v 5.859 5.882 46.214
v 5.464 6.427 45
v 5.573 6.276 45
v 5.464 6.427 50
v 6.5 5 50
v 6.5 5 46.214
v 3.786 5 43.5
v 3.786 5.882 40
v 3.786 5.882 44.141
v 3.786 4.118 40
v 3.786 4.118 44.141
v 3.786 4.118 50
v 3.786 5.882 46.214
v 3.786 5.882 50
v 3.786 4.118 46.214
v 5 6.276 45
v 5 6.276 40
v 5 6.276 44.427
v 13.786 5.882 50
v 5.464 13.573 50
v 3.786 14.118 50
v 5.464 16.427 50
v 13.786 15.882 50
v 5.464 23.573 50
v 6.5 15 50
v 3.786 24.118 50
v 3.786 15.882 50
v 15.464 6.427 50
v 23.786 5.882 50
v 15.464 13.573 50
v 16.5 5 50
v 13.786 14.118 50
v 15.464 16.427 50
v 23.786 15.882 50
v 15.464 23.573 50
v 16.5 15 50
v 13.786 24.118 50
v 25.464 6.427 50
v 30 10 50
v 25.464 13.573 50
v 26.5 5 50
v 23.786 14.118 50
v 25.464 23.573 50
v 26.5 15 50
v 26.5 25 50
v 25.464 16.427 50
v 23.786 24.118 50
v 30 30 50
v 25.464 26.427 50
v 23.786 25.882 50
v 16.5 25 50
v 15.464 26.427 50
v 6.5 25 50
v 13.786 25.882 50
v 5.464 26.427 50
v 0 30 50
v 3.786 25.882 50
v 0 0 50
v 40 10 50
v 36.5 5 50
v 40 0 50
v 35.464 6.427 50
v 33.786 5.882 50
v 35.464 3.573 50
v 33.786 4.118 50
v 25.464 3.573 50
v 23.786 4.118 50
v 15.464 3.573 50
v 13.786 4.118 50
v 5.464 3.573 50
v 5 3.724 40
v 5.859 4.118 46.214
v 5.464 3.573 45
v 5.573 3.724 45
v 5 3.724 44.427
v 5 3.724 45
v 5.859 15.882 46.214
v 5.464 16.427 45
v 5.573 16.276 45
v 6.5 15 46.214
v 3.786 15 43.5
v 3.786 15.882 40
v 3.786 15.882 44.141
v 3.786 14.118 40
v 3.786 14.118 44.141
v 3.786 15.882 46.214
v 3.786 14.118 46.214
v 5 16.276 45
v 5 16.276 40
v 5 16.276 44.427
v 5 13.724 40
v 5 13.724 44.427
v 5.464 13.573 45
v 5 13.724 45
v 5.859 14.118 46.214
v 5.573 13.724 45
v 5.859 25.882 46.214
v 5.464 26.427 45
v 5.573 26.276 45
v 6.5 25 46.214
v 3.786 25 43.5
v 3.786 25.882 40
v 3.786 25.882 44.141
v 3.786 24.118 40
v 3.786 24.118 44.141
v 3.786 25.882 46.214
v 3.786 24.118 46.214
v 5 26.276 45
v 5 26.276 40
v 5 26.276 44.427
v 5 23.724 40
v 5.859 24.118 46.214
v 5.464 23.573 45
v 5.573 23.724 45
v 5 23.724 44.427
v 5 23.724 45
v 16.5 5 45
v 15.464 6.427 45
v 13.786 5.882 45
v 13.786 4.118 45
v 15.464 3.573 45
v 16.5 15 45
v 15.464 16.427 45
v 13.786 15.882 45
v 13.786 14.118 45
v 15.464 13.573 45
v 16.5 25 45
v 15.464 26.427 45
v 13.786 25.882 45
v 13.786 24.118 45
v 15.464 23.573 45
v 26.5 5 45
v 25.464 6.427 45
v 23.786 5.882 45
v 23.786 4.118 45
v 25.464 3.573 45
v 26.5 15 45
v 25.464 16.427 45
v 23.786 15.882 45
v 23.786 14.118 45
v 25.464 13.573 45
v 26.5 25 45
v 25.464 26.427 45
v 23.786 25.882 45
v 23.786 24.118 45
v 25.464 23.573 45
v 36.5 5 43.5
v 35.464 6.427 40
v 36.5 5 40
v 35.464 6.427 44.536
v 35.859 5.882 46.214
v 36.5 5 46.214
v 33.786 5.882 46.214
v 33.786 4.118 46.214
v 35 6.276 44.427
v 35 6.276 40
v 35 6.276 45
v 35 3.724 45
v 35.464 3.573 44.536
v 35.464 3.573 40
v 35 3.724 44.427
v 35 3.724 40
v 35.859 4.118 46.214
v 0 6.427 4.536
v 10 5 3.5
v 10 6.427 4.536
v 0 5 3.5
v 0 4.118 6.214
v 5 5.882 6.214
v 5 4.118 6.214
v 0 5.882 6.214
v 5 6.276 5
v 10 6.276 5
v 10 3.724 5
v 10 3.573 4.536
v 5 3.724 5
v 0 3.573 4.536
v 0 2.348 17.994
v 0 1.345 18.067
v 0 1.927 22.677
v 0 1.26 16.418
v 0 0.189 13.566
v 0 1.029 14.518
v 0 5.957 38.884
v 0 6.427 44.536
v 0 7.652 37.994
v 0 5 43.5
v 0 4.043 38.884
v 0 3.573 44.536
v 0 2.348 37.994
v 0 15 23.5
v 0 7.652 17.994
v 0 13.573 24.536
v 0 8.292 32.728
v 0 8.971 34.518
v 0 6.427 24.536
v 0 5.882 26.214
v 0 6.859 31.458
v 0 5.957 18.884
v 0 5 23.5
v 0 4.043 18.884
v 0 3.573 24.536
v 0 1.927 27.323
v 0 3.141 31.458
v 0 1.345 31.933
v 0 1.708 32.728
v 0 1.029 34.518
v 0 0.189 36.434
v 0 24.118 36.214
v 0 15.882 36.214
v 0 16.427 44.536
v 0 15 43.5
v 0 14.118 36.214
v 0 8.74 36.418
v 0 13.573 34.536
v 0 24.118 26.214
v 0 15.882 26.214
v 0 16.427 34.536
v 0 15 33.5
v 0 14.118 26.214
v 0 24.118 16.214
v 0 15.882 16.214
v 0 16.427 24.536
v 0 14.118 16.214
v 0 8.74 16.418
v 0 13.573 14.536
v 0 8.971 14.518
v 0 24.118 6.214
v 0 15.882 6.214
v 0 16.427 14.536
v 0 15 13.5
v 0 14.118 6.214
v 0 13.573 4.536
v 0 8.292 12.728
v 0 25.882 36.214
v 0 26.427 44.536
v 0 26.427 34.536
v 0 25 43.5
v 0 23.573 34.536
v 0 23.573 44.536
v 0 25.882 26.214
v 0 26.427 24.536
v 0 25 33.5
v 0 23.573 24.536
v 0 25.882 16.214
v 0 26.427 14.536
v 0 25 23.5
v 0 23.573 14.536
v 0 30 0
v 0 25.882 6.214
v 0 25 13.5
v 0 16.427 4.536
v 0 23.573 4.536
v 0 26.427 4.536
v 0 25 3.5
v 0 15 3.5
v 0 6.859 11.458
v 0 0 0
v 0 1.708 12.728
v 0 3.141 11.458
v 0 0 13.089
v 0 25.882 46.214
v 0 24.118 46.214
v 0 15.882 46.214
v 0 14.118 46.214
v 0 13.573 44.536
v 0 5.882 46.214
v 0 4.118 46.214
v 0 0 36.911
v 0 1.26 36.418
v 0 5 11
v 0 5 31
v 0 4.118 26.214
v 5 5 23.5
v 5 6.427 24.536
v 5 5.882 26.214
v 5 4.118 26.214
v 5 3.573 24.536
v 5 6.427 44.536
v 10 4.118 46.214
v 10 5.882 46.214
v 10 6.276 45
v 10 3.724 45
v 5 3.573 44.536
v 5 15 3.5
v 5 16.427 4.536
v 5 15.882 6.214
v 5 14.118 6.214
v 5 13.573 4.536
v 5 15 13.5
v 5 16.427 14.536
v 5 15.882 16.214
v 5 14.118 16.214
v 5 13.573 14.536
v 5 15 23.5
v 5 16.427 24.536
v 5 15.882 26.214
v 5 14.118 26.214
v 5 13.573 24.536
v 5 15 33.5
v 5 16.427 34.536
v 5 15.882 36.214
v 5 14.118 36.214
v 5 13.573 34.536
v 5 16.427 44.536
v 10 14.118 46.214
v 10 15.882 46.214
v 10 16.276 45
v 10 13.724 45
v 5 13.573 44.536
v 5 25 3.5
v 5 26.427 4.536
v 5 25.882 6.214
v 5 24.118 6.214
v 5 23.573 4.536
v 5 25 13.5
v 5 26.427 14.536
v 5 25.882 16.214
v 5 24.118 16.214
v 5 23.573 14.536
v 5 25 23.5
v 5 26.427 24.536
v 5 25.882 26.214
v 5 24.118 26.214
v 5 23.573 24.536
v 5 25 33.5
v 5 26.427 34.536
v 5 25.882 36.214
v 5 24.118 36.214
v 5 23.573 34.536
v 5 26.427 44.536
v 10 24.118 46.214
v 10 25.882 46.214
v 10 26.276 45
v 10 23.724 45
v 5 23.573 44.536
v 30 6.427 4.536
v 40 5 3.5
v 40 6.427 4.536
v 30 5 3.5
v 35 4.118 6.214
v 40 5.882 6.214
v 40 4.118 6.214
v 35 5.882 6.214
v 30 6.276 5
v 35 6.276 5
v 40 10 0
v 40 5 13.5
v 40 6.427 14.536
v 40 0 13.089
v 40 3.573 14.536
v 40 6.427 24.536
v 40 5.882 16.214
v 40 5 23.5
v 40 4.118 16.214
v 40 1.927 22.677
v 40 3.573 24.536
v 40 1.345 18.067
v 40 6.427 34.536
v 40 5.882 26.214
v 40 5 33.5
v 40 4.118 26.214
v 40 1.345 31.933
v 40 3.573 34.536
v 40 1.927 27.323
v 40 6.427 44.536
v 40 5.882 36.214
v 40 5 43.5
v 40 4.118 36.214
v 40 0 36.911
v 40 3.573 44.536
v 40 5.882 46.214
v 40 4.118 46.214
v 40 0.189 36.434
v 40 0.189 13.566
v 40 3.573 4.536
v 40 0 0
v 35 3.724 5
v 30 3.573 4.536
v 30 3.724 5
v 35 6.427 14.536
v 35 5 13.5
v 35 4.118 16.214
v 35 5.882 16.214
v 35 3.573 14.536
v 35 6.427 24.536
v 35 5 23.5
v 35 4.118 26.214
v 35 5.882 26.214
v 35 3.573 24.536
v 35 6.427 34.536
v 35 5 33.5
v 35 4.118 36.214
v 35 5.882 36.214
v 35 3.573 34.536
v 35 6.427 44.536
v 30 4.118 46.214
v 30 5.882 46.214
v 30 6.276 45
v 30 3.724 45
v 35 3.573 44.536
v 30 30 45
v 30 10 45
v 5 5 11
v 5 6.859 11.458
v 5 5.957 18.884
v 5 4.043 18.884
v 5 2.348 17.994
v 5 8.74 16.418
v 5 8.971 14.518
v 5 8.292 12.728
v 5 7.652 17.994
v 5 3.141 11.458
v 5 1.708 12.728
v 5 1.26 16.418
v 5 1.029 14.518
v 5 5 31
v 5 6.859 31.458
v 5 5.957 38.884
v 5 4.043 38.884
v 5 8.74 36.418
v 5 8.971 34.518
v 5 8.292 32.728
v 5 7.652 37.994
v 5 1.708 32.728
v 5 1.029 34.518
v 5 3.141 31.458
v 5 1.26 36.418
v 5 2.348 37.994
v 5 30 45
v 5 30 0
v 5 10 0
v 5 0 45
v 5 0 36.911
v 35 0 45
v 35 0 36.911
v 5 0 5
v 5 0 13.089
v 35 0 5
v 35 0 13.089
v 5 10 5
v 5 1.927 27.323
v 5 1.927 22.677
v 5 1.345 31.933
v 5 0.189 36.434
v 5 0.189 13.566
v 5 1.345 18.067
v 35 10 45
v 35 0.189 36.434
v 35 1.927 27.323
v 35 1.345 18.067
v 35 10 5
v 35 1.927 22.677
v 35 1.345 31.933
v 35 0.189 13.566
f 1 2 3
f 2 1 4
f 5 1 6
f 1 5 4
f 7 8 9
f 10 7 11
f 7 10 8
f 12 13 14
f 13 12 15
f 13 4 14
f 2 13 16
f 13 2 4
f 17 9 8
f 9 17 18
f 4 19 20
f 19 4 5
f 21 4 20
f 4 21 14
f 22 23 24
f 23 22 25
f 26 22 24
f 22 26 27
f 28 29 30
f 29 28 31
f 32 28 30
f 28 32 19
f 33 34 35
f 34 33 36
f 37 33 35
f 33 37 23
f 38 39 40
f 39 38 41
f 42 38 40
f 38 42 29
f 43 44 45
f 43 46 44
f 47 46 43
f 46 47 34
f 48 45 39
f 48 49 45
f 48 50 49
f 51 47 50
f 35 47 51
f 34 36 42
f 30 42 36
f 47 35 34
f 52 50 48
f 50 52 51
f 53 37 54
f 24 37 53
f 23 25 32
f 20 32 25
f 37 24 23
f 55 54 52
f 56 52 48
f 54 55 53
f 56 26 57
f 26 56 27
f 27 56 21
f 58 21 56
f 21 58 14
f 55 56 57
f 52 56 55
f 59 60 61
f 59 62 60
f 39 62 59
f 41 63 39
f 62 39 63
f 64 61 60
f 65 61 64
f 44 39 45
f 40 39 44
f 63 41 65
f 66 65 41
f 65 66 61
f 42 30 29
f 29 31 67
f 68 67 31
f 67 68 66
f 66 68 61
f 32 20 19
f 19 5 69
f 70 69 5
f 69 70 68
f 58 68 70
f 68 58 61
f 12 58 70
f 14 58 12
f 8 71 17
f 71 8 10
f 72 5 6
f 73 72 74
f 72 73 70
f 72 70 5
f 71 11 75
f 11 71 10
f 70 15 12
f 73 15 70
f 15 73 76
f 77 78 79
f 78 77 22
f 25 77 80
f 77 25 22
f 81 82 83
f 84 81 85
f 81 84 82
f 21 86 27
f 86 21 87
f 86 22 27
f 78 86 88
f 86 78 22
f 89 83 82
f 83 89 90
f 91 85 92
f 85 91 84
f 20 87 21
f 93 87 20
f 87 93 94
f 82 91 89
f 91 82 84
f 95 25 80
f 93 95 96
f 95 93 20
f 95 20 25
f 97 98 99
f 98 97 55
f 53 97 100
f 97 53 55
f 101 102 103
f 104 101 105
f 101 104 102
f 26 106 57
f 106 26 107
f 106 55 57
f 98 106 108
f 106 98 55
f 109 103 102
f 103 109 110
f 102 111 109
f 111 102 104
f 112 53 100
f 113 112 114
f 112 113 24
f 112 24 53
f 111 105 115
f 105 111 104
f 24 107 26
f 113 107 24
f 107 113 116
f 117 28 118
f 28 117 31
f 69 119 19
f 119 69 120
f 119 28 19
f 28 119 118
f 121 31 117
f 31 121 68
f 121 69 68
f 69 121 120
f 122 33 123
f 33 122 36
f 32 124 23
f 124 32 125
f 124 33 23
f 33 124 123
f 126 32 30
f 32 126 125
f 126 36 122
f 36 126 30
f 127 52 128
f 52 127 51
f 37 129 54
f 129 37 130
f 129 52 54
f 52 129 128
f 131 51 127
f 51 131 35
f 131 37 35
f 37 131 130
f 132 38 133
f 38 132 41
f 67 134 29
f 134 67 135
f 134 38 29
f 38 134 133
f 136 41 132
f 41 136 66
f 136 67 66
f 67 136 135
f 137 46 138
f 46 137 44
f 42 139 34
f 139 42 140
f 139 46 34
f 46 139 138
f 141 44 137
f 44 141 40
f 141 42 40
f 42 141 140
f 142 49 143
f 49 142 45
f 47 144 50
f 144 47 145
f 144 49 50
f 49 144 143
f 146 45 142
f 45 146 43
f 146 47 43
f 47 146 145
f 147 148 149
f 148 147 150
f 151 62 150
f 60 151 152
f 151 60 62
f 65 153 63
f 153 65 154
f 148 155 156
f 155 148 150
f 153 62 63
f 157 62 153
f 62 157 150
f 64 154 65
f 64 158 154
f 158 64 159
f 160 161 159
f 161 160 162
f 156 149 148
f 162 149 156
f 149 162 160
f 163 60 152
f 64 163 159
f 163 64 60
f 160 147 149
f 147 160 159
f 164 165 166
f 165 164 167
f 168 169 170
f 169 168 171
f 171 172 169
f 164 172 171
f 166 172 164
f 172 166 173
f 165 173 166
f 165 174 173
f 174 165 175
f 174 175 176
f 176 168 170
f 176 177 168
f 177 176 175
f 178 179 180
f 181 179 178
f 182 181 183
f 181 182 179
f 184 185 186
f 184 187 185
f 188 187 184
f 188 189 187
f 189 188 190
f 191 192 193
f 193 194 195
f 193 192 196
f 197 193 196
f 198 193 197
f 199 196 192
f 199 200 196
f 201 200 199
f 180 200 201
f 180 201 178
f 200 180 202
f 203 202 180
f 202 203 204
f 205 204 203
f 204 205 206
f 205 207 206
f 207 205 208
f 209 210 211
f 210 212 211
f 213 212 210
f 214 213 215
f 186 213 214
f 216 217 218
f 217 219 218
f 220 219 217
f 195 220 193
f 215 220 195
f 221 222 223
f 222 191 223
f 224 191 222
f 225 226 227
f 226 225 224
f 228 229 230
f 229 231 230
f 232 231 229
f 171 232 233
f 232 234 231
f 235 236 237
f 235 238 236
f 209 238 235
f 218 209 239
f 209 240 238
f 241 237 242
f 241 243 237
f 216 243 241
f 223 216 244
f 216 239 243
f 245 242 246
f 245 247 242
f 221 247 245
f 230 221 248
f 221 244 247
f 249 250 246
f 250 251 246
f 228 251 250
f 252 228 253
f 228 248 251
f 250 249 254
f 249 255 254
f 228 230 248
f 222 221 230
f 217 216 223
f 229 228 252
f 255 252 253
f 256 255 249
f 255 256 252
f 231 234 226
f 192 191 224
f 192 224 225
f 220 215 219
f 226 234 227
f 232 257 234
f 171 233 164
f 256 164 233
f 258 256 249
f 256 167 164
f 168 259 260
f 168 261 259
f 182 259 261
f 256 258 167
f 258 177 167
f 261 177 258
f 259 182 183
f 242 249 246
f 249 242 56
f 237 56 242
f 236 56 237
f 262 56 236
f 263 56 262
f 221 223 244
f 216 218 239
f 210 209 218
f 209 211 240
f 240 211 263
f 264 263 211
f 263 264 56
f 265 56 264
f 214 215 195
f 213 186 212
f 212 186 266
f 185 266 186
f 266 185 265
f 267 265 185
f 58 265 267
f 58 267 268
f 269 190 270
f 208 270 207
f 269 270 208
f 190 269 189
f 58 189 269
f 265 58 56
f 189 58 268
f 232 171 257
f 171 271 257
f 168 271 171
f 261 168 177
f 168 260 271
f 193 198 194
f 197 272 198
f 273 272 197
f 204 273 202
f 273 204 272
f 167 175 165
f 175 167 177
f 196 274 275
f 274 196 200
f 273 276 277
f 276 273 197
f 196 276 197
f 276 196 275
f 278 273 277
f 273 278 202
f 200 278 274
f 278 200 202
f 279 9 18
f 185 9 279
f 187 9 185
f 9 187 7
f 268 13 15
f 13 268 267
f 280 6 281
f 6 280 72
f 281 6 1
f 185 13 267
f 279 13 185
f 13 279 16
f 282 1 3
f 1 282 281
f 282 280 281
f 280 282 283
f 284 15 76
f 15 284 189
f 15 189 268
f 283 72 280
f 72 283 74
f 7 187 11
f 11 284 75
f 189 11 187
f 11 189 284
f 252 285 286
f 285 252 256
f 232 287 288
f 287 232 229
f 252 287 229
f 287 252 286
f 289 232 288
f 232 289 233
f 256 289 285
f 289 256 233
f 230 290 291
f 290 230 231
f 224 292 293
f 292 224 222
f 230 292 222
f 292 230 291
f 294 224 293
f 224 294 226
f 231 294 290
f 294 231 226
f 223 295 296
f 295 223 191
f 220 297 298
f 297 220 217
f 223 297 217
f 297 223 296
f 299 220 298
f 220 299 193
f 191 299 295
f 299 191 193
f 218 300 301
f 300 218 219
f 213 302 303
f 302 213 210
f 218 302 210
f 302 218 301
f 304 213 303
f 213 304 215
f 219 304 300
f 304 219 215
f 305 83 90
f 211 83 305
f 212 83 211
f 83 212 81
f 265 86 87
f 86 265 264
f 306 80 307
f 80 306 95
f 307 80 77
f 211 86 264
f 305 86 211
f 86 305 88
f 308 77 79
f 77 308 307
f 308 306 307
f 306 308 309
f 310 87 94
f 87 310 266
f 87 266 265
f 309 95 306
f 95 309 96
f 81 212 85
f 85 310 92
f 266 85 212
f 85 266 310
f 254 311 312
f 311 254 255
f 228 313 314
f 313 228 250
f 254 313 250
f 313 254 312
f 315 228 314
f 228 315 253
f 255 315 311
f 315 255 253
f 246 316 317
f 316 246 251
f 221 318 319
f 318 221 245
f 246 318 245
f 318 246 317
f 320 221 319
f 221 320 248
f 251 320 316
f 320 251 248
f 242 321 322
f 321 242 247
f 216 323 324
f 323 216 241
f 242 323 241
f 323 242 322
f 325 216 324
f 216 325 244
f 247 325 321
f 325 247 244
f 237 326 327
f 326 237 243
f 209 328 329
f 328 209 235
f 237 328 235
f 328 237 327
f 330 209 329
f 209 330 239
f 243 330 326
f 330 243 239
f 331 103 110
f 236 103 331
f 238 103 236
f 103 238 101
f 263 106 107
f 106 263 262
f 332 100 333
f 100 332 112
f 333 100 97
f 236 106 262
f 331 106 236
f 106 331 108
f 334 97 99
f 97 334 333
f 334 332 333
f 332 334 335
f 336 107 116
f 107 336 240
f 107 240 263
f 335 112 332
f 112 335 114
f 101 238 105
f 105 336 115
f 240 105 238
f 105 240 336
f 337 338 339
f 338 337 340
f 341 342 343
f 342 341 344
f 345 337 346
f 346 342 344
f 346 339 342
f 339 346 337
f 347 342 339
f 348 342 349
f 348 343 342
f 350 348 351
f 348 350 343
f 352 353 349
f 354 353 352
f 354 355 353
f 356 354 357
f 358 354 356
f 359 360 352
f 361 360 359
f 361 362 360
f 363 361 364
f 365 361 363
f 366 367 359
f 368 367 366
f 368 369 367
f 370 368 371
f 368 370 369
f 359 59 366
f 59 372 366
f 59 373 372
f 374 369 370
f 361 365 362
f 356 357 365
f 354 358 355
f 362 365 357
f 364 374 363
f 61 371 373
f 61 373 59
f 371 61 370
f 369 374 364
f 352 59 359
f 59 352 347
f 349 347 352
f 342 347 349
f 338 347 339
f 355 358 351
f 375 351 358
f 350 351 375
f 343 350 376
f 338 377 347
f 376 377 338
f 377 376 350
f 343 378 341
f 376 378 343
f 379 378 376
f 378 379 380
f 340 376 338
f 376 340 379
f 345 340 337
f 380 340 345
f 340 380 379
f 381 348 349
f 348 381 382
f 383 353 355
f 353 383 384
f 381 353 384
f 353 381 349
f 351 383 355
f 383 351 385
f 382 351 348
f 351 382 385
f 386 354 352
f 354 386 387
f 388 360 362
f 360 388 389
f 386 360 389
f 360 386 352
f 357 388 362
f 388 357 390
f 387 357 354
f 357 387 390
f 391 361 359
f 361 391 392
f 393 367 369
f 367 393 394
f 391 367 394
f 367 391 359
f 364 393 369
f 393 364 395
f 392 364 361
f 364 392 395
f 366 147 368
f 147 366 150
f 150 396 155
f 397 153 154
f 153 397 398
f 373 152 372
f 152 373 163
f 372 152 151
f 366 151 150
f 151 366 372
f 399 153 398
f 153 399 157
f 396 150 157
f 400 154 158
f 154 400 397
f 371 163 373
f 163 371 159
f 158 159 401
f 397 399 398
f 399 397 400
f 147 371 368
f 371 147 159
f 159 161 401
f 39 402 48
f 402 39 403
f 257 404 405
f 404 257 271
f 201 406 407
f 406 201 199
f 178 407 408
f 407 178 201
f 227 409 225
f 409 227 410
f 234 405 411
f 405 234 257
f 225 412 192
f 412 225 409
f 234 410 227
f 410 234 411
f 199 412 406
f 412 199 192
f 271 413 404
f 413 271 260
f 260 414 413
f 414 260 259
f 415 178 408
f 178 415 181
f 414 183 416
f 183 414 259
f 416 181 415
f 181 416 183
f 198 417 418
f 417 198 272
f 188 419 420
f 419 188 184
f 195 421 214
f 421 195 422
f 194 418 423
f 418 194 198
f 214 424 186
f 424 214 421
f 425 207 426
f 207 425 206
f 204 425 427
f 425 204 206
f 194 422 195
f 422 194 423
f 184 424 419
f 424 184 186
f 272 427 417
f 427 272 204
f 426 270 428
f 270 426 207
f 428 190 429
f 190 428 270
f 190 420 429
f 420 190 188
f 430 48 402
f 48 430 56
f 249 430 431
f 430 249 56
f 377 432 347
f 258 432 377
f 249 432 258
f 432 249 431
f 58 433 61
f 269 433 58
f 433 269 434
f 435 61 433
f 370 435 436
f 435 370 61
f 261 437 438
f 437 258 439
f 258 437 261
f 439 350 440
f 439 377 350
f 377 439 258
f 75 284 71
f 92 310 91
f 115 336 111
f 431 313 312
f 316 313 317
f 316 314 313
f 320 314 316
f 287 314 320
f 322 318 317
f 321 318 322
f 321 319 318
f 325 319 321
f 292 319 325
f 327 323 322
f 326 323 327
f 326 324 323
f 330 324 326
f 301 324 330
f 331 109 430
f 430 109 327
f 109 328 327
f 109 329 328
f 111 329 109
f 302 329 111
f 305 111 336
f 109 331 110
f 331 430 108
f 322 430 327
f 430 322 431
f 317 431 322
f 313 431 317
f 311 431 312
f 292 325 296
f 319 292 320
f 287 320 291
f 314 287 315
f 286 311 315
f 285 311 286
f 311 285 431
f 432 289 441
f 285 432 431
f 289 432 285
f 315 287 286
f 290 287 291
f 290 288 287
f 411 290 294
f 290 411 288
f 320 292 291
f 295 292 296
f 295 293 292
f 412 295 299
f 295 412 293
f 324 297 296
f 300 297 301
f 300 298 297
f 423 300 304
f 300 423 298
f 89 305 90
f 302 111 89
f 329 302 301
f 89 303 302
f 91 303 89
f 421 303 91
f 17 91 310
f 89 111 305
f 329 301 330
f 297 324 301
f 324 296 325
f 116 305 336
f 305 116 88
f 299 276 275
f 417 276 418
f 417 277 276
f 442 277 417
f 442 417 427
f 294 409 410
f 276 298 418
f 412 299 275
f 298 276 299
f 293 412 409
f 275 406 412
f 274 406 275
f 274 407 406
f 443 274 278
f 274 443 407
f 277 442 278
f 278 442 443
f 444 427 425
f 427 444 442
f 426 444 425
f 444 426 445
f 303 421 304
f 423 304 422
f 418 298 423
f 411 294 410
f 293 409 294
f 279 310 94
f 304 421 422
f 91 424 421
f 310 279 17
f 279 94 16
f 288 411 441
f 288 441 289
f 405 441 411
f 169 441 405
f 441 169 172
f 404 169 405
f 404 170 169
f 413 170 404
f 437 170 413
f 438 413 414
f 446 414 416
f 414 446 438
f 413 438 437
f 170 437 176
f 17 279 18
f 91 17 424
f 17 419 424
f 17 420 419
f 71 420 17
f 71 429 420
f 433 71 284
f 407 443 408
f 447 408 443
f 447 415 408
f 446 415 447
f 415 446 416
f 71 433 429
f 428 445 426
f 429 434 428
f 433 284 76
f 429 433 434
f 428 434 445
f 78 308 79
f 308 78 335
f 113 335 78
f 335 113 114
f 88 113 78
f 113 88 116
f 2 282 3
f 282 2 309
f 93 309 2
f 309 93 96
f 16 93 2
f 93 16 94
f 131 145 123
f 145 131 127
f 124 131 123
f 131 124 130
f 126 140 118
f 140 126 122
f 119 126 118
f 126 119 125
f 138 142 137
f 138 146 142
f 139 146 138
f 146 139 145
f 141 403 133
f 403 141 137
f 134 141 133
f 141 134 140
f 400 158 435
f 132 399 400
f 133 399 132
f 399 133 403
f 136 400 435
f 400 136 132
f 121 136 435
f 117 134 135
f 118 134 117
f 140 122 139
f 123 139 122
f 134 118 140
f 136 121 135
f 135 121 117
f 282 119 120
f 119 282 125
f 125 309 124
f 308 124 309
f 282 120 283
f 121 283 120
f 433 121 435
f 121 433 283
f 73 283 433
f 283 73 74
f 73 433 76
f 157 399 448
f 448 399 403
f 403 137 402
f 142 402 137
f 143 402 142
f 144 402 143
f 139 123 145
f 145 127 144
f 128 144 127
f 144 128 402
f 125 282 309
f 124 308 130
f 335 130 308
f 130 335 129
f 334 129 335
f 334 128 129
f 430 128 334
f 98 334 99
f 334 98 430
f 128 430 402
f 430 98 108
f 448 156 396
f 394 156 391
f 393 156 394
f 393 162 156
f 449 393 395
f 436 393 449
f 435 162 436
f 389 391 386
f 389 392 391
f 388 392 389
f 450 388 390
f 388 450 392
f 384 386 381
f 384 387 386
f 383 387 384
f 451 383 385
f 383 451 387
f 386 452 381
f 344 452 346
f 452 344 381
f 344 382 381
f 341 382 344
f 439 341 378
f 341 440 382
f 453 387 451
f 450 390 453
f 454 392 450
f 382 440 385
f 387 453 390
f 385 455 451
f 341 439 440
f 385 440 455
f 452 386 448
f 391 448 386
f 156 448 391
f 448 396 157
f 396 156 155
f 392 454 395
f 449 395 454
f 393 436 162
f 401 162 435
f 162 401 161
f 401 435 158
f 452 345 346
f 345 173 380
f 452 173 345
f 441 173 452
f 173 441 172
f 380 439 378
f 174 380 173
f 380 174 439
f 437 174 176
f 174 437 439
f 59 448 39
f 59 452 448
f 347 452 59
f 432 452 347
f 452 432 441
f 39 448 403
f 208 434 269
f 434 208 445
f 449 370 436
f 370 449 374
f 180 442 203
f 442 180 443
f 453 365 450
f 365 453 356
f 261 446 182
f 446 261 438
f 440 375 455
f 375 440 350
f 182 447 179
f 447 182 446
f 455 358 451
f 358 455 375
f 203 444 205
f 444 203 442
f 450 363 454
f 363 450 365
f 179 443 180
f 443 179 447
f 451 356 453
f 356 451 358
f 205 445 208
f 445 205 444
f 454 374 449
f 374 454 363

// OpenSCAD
module main() {
	difference() {
		cube([40, 30, 50]);

		translate([5, 0, 5])
			cube([30, 10, 40]);

		translate([5, 10, 0])
			cube([35, 25, 45]);

		translate([30, 10, 0])
			cube([10, 20, 50]);

		for(x = [5:10:35])
			for(y = [5:10:25])
				translate([x, y, 40])
					cylinder(d = 3, h = 10);

		for(x = [0, 30])
			for(y = [5:10:25])
				for(z = [5:10:45])
					translate([x, y, z])
						rotate([0, 90, 0])
							cylinder(d = 3, h = 10);

		for(y = [5])
			for(z = [15, 35])
				translate([0, y, z])
					rotate([0, 90, 0])
						cylinder(d = 8, h = 10);

		translate([0, -70/2, 25])
			rotate([0, 90, 0])
				cylinder(d = 74, h = 40, $fn = 50);
	}
}

main();
